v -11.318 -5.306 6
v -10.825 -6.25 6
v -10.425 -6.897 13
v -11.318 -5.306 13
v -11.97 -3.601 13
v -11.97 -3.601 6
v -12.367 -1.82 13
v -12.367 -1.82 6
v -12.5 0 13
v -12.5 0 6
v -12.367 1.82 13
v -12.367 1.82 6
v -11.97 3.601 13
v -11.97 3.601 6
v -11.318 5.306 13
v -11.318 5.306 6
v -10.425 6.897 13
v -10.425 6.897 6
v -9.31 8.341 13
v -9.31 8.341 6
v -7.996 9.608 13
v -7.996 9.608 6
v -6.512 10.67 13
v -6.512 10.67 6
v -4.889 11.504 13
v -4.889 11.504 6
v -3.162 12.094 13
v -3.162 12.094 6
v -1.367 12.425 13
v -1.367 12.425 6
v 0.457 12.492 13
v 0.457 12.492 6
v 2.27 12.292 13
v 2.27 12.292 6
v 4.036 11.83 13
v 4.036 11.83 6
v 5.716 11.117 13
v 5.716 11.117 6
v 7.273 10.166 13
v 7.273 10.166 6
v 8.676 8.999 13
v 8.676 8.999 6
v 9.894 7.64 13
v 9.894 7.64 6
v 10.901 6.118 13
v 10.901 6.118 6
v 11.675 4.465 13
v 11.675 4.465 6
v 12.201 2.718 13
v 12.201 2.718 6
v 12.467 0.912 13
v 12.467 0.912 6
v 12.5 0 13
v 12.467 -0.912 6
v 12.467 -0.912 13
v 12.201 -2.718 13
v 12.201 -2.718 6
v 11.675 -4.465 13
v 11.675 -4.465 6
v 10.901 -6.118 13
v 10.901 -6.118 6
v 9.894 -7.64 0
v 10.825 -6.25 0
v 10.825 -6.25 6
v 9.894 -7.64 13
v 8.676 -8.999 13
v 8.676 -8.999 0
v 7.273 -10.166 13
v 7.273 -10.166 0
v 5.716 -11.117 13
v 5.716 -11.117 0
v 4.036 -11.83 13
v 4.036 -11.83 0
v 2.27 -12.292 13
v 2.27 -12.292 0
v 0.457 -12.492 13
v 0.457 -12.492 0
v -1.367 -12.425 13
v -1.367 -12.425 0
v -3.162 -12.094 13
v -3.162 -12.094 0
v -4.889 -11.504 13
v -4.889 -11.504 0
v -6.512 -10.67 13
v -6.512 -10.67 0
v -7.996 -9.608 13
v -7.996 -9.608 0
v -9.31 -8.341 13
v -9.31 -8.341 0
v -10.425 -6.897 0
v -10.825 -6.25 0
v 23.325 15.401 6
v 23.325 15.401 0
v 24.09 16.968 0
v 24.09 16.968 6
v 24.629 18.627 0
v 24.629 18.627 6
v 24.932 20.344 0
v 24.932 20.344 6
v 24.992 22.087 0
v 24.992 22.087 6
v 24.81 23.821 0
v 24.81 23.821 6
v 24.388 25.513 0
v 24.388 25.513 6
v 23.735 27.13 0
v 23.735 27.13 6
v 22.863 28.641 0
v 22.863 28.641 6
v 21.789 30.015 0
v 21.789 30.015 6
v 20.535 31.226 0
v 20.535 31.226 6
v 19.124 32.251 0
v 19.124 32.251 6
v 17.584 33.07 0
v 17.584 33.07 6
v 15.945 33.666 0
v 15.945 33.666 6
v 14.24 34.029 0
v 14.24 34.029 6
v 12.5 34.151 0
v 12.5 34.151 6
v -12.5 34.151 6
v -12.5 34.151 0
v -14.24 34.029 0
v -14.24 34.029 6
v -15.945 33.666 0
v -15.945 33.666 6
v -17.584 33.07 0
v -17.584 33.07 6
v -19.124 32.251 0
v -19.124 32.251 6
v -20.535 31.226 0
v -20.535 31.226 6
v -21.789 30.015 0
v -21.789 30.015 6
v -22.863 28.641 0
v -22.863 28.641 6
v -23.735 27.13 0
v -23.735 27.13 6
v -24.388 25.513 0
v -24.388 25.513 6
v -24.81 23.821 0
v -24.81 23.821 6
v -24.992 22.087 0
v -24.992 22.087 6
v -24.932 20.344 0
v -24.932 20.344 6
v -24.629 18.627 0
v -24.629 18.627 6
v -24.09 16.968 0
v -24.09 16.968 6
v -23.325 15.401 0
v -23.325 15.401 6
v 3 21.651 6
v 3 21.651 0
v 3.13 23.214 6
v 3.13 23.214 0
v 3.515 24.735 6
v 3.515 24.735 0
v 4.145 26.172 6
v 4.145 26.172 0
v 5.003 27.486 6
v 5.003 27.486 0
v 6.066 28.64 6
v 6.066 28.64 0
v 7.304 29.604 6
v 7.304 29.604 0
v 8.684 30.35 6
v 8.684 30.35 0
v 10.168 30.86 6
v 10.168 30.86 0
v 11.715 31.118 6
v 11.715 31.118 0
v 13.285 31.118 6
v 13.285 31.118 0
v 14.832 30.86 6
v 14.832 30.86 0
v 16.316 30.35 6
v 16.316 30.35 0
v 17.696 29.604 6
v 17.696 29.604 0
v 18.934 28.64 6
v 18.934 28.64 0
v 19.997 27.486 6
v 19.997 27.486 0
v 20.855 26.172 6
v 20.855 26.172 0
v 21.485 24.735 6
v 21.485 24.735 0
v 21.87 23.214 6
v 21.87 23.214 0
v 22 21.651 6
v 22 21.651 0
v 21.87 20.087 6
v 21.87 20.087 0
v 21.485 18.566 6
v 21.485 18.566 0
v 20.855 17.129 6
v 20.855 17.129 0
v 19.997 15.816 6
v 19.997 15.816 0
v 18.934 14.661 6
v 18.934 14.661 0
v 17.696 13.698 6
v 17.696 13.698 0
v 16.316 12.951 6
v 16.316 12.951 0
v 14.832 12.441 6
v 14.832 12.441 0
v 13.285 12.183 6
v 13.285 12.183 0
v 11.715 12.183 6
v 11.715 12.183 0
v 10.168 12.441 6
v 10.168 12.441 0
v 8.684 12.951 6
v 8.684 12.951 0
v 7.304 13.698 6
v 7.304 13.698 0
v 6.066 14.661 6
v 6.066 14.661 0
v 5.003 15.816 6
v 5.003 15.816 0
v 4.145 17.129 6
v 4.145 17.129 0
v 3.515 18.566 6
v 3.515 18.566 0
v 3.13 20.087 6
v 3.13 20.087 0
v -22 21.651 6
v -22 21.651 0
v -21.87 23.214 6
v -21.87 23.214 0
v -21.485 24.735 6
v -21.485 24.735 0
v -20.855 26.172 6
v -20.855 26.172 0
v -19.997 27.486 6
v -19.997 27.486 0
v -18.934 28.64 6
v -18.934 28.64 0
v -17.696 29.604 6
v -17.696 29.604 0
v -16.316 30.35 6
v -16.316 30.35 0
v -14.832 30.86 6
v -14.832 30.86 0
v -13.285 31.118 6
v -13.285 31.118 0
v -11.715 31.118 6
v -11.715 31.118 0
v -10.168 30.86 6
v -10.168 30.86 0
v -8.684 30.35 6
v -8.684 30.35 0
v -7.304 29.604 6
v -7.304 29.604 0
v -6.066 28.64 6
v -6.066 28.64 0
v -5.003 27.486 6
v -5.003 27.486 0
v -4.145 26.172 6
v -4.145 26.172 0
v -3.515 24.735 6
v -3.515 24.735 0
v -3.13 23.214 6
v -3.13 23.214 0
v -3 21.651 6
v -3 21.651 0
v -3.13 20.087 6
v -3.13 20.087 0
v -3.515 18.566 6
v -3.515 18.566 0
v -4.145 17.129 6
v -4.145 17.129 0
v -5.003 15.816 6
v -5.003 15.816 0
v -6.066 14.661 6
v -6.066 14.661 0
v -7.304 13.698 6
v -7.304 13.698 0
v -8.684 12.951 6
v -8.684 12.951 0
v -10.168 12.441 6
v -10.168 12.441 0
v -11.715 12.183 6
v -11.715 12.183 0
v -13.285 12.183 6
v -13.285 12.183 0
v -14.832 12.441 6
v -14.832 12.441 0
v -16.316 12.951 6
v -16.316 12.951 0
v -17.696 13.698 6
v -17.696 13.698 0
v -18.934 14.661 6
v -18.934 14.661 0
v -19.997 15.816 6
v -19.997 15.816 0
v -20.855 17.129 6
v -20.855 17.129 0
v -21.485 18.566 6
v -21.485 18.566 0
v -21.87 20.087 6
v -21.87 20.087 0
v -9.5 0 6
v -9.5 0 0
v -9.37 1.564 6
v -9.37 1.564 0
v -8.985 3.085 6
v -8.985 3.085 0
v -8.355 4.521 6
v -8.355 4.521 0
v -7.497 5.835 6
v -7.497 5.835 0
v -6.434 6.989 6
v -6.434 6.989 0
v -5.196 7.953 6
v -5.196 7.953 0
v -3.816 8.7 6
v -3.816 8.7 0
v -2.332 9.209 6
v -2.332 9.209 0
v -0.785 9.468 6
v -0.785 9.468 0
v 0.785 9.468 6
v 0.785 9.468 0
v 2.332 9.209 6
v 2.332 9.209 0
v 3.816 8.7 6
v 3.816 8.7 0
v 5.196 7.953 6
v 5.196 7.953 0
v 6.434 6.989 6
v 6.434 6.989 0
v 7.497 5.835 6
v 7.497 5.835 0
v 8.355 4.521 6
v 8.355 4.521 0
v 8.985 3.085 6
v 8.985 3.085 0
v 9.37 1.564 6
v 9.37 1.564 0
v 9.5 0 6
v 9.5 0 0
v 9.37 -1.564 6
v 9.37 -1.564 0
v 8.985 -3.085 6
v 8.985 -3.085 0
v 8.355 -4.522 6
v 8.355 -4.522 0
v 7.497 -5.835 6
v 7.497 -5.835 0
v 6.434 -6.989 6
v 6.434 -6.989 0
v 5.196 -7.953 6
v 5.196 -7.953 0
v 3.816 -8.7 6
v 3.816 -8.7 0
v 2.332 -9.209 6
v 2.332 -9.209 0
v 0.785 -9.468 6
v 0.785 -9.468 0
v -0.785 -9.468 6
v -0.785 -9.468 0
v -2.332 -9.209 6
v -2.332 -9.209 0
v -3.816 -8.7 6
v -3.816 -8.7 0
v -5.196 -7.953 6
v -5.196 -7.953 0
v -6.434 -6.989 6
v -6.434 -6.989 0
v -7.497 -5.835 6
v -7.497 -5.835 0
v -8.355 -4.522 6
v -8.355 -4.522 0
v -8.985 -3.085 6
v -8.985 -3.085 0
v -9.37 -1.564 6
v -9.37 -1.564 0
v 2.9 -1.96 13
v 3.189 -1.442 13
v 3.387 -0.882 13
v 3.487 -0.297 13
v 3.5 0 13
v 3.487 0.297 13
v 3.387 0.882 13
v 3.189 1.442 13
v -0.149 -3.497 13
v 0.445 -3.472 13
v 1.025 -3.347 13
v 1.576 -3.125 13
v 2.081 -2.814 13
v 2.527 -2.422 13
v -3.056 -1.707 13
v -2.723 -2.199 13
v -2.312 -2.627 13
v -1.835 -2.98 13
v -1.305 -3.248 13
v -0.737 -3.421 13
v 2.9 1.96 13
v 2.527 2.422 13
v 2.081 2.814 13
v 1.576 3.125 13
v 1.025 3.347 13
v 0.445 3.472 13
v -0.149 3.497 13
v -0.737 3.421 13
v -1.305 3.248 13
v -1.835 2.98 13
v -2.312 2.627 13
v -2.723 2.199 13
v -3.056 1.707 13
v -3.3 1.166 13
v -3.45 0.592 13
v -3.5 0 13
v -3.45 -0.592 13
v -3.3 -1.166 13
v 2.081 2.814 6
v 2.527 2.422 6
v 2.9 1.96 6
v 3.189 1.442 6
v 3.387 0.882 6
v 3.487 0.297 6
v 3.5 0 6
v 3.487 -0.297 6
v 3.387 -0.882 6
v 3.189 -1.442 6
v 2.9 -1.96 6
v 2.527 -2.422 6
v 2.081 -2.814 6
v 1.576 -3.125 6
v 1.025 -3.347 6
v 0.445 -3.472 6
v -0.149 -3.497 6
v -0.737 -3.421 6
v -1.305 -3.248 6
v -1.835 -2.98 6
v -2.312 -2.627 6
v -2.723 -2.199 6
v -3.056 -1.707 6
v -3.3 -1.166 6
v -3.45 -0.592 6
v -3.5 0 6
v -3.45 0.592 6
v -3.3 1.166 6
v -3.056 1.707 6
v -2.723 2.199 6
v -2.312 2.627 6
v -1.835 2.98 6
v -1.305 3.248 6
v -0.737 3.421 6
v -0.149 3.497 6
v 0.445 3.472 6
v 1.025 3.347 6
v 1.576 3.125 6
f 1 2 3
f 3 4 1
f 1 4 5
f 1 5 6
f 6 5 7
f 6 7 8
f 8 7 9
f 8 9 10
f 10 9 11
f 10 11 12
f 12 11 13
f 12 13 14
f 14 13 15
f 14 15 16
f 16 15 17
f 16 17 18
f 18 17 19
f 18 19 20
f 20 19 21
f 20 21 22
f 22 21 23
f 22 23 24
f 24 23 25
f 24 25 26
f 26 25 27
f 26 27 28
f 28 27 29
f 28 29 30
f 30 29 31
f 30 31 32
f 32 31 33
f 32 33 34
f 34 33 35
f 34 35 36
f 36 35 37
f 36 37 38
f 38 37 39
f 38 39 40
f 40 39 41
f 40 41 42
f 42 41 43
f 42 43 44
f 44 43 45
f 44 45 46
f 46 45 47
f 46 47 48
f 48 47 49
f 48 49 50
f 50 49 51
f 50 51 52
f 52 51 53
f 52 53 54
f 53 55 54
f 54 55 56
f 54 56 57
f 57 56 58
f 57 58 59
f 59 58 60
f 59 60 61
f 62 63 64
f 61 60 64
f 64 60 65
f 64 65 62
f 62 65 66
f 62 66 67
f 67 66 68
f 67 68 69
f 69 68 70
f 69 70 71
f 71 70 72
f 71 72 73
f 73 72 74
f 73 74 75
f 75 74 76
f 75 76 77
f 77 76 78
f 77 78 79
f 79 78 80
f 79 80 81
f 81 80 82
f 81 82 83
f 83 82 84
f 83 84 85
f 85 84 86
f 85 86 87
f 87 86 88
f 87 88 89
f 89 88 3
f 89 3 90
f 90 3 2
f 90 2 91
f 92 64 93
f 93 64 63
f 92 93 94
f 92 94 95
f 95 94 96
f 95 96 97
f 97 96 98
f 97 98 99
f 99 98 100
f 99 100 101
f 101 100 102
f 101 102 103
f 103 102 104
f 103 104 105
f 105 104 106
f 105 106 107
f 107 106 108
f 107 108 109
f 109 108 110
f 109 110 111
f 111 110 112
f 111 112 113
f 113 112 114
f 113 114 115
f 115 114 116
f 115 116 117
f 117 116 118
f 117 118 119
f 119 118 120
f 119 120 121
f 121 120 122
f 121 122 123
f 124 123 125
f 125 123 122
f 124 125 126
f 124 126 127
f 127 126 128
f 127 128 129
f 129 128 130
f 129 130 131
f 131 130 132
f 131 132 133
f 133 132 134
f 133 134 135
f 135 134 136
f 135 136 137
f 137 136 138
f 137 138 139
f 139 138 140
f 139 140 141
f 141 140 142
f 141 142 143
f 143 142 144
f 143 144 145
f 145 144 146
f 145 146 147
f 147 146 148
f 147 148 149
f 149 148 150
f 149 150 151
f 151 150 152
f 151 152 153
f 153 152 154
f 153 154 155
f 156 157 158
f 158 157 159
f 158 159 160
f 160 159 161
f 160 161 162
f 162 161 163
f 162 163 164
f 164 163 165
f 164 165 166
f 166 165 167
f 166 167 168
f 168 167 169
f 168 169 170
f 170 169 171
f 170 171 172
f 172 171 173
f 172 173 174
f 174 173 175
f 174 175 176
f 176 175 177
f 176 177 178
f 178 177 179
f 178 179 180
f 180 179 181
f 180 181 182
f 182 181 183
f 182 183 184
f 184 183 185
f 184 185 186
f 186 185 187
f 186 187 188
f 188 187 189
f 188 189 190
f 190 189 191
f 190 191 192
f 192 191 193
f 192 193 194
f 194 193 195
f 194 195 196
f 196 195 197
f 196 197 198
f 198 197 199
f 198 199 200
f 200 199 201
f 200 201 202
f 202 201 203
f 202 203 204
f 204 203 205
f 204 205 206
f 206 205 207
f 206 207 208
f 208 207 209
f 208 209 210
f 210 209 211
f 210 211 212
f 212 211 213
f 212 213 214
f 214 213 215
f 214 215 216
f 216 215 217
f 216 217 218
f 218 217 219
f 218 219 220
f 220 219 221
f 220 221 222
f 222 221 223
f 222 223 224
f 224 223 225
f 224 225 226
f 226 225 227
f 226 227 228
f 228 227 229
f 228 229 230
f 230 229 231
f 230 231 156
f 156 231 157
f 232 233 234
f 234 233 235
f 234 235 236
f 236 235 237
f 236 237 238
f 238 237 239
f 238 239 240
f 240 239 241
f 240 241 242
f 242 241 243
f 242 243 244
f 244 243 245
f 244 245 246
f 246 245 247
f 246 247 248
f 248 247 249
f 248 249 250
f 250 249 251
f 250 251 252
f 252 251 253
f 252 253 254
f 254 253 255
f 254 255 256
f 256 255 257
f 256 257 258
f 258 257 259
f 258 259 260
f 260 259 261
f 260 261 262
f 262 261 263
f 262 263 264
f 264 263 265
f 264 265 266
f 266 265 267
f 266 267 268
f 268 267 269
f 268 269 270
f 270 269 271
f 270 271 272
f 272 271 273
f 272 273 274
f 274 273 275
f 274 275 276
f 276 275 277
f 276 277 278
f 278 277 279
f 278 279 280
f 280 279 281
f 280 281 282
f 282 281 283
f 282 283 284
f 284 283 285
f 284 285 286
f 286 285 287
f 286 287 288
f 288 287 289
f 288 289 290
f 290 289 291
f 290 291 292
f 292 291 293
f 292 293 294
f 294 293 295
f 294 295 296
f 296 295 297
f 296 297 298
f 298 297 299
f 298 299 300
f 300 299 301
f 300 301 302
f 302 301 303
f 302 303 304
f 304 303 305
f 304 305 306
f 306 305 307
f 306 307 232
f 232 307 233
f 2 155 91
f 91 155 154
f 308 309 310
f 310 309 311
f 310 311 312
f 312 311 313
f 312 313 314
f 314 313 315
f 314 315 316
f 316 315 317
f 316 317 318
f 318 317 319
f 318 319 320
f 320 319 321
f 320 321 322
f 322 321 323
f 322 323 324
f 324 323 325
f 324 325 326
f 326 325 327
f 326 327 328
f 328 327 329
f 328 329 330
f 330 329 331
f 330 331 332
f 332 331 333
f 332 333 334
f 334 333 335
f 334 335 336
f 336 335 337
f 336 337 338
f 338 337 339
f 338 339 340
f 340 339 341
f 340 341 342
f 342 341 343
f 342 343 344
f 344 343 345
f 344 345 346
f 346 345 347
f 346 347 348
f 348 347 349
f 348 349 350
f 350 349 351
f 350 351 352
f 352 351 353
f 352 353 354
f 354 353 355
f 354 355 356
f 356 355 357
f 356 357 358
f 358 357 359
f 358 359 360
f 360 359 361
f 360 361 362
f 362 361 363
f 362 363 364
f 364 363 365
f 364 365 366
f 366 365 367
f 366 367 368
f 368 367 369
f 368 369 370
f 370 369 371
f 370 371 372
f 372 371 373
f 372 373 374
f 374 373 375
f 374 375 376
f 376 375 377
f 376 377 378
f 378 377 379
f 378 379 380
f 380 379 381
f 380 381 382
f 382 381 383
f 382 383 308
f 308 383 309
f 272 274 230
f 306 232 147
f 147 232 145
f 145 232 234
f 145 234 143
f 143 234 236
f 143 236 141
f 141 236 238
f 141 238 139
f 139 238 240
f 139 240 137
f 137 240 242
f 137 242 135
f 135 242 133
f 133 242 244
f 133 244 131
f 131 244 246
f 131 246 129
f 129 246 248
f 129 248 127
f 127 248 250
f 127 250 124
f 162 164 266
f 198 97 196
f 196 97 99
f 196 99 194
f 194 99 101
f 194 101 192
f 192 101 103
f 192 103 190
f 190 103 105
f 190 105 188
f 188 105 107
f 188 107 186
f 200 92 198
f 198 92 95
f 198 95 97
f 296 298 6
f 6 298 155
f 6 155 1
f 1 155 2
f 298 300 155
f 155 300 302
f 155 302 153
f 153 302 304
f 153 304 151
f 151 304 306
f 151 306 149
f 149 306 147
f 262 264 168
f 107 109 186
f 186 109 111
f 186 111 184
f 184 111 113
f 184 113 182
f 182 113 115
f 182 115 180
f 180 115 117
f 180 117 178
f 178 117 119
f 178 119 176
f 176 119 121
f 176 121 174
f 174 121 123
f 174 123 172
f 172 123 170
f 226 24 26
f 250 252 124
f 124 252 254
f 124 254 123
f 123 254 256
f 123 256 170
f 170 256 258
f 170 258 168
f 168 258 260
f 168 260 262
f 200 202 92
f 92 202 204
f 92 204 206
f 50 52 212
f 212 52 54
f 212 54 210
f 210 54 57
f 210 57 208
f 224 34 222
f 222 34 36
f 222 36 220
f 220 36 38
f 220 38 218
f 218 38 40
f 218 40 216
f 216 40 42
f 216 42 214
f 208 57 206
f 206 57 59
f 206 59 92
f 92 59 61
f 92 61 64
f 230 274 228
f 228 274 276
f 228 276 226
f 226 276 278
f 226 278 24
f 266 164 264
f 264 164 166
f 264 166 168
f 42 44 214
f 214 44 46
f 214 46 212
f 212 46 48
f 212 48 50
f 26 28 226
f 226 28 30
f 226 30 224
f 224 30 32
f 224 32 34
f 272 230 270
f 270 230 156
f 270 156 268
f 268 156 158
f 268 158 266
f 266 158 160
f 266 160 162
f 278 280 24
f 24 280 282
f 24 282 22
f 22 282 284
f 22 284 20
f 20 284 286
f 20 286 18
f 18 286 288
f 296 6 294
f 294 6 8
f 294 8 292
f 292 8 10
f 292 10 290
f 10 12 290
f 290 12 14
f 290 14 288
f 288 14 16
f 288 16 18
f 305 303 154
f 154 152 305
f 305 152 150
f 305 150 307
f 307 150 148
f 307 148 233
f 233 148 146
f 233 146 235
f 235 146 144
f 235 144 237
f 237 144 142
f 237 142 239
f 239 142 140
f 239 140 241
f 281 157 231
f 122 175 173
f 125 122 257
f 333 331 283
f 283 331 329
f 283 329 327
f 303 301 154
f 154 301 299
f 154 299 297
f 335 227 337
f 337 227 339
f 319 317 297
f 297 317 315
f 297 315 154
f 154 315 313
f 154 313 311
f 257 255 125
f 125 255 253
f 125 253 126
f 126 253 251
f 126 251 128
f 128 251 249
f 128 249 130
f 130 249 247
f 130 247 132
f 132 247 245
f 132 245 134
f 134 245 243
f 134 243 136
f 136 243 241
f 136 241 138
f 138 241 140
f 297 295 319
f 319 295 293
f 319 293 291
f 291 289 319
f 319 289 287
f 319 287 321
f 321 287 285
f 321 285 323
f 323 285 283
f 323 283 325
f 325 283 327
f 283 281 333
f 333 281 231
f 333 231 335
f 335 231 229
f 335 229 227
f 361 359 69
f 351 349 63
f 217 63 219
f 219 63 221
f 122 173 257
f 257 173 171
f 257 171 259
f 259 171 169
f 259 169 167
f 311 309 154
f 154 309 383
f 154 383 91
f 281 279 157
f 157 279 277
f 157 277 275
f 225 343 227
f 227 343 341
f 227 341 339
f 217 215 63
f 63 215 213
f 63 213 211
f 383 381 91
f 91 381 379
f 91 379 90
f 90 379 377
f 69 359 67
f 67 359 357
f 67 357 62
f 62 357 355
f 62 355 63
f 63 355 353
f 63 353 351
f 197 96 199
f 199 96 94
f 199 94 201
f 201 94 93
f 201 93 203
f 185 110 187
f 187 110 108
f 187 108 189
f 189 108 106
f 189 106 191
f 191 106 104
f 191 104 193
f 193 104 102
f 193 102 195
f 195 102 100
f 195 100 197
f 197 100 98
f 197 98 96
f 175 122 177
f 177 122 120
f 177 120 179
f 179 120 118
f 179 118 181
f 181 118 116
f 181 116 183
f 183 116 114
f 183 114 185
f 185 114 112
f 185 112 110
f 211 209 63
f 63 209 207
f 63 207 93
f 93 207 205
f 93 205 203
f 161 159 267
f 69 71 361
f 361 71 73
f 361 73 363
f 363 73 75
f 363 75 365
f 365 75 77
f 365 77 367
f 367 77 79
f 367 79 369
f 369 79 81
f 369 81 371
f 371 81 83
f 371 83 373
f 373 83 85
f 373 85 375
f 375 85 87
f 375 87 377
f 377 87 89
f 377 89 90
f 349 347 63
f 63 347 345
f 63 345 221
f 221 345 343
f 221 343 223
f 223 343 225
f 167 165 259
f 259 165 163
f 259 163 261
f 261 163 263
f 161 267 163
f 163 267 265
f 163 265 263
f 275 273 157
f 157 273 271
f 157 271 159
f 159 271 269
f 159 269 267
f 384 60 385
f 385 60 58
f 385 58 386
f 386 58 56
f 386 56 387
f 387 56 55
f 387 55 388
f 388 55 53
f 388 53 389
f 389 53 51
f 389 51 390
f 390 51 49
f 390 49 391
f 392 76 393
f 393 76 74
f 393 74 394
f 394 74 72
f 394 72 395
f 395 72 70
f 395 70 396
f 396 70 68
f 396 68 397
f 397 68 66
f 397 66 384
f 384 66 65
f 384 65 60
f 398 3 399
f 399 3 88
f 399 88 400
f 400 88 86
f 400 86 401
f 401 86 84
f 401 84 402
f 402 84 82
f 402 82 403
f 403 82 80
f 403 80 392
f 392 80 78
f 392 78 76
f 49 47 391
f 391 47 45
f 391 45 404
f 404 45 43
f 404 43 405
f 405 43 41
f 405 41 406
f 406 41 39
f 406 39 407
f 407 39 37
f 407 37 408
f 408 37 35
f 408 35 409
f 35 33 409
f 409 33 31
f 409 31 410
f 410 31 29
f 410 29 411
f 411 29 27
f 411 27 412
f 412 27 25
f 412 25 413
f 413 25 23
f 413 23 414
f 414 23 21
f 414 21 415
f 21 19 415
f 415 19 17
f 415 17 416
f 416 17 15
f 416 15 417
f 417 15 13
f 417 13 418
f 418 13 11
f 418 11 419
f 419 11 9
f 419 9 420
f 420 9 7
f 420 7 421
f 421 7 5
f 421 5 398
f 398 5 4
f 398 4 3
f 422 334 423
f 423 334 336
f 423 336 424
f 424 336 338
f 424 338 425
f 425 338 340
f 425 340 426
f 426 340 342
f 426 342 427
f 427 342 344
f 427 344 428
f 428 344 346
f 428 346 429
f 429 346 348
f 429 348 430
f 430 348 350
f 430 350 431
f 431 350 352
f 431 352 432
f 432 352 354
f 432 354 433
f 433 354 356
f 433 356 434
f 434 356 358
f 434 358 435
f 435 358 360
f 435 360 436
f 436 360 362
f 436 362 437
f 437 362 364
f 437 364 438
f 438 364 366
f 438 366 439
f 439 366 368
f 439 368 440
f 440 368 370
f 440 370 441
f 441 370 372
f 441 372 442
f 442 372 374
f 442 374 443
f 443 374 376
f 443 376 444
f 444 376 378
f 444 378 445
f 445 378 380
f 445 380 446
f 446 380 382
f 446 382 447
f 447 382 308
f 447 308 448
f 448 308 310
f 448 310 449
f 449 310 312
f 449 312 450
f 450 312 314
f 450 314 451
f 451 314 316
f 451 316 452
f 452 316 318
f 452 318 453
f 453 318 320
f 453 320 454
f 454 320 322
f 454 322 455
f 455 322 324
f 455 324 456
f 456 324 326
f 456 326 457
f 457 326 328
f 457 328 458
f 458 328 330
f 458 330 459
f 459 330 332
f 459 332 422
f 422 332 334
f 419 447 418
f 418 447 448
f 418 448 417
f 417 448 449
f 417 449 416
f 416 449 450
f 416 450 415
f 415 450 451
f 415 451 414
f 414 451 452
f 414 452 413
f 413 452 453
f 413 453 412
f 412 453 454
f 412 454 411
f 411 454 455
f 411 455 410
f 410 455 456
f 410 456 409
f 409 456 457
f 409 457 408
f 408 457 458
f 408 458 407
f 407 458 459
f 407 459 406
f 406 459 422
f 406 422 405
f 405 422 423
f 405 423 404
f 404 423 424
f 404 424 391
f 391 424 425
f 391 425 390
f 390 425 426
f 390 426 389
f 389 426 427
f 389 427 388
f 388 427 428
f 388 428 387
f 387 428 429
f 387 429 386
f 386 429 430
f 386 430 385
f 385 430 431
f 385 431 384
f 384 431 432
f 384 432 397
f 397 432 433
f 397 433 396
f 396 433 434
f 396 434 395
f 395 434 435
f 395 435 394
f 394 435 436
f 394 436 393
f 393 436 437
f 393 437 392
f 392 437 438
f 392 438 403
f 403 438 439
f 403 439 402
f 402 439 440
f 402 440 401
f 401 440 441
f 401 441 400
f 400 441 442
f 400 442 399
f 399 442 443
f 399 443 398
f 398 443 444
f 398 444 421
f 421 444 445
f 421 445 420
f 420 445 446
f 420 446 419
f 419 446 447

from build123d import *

# Parameters (mm, degrees)
CROQUIS1_R              = 9.5
SALIENTE_EXTRUIR1_DEPTH = 6
CROQUIS2_R              = 12.5
CROQUIS2_R_2            = 3.5
SALIENTE_EXTRUIR3_DEPTH = 7


with BuildPart() as part:
    # Croquis1 → Saliente-Extruir1 (new body)
    with BuildSketch(Plane.XY):
        with BuildLine():
            Line((-23.325317547, 15.400635095), (-10.825317547, -6.25))
            ThreePointArc((-10.825317547, -6.25), (0, -12.5), (10.825317547, -6.25))
            Line((10.825317547, -6.25), (23.325317547, 15.400635095))
            ThreePointArc((23.325317547, 15.400635095), (23.325317547, 27.900635095), (12.5, 34.150635095))
            Line((12.5, 34.150635095), (-12.5, 34.150635095))
            ThreePointArc((-12.5, 34.150635095), (-23.325317547, 27.900635095), (-23.325317547, 15.400635095))
        make_face()
        Circle(CROQUIS1_R, mode=Mode.SUBTRACT)
        with Locations((12.5, 21.650635095)):
            Circle(CROQUIS1_R, mode=Mode.SUBTRACT)
        with Locations((-12.5, 21.650635095)):
            Circle(CROQUIS1_R, mode=Mode.SUBTRACT)
    extrude(amount=SALIENTE_EXTRUIR1_DEPTH)

    # Croquis2 → Saliente-Extruir3 (add)
    with BuildSketch(Plane.XY.offset(6)):
        with Locations(Location((0, 0, 0), (0, 0, 210))):
            Circle(CROQUIS2_R)
        Circle(CROQUIS2_R_2, mode=Mode.SUBTRACT)
    extrude(amount=SALIENTE_EXTRUIR3_DEPTH)


solid = part.part
